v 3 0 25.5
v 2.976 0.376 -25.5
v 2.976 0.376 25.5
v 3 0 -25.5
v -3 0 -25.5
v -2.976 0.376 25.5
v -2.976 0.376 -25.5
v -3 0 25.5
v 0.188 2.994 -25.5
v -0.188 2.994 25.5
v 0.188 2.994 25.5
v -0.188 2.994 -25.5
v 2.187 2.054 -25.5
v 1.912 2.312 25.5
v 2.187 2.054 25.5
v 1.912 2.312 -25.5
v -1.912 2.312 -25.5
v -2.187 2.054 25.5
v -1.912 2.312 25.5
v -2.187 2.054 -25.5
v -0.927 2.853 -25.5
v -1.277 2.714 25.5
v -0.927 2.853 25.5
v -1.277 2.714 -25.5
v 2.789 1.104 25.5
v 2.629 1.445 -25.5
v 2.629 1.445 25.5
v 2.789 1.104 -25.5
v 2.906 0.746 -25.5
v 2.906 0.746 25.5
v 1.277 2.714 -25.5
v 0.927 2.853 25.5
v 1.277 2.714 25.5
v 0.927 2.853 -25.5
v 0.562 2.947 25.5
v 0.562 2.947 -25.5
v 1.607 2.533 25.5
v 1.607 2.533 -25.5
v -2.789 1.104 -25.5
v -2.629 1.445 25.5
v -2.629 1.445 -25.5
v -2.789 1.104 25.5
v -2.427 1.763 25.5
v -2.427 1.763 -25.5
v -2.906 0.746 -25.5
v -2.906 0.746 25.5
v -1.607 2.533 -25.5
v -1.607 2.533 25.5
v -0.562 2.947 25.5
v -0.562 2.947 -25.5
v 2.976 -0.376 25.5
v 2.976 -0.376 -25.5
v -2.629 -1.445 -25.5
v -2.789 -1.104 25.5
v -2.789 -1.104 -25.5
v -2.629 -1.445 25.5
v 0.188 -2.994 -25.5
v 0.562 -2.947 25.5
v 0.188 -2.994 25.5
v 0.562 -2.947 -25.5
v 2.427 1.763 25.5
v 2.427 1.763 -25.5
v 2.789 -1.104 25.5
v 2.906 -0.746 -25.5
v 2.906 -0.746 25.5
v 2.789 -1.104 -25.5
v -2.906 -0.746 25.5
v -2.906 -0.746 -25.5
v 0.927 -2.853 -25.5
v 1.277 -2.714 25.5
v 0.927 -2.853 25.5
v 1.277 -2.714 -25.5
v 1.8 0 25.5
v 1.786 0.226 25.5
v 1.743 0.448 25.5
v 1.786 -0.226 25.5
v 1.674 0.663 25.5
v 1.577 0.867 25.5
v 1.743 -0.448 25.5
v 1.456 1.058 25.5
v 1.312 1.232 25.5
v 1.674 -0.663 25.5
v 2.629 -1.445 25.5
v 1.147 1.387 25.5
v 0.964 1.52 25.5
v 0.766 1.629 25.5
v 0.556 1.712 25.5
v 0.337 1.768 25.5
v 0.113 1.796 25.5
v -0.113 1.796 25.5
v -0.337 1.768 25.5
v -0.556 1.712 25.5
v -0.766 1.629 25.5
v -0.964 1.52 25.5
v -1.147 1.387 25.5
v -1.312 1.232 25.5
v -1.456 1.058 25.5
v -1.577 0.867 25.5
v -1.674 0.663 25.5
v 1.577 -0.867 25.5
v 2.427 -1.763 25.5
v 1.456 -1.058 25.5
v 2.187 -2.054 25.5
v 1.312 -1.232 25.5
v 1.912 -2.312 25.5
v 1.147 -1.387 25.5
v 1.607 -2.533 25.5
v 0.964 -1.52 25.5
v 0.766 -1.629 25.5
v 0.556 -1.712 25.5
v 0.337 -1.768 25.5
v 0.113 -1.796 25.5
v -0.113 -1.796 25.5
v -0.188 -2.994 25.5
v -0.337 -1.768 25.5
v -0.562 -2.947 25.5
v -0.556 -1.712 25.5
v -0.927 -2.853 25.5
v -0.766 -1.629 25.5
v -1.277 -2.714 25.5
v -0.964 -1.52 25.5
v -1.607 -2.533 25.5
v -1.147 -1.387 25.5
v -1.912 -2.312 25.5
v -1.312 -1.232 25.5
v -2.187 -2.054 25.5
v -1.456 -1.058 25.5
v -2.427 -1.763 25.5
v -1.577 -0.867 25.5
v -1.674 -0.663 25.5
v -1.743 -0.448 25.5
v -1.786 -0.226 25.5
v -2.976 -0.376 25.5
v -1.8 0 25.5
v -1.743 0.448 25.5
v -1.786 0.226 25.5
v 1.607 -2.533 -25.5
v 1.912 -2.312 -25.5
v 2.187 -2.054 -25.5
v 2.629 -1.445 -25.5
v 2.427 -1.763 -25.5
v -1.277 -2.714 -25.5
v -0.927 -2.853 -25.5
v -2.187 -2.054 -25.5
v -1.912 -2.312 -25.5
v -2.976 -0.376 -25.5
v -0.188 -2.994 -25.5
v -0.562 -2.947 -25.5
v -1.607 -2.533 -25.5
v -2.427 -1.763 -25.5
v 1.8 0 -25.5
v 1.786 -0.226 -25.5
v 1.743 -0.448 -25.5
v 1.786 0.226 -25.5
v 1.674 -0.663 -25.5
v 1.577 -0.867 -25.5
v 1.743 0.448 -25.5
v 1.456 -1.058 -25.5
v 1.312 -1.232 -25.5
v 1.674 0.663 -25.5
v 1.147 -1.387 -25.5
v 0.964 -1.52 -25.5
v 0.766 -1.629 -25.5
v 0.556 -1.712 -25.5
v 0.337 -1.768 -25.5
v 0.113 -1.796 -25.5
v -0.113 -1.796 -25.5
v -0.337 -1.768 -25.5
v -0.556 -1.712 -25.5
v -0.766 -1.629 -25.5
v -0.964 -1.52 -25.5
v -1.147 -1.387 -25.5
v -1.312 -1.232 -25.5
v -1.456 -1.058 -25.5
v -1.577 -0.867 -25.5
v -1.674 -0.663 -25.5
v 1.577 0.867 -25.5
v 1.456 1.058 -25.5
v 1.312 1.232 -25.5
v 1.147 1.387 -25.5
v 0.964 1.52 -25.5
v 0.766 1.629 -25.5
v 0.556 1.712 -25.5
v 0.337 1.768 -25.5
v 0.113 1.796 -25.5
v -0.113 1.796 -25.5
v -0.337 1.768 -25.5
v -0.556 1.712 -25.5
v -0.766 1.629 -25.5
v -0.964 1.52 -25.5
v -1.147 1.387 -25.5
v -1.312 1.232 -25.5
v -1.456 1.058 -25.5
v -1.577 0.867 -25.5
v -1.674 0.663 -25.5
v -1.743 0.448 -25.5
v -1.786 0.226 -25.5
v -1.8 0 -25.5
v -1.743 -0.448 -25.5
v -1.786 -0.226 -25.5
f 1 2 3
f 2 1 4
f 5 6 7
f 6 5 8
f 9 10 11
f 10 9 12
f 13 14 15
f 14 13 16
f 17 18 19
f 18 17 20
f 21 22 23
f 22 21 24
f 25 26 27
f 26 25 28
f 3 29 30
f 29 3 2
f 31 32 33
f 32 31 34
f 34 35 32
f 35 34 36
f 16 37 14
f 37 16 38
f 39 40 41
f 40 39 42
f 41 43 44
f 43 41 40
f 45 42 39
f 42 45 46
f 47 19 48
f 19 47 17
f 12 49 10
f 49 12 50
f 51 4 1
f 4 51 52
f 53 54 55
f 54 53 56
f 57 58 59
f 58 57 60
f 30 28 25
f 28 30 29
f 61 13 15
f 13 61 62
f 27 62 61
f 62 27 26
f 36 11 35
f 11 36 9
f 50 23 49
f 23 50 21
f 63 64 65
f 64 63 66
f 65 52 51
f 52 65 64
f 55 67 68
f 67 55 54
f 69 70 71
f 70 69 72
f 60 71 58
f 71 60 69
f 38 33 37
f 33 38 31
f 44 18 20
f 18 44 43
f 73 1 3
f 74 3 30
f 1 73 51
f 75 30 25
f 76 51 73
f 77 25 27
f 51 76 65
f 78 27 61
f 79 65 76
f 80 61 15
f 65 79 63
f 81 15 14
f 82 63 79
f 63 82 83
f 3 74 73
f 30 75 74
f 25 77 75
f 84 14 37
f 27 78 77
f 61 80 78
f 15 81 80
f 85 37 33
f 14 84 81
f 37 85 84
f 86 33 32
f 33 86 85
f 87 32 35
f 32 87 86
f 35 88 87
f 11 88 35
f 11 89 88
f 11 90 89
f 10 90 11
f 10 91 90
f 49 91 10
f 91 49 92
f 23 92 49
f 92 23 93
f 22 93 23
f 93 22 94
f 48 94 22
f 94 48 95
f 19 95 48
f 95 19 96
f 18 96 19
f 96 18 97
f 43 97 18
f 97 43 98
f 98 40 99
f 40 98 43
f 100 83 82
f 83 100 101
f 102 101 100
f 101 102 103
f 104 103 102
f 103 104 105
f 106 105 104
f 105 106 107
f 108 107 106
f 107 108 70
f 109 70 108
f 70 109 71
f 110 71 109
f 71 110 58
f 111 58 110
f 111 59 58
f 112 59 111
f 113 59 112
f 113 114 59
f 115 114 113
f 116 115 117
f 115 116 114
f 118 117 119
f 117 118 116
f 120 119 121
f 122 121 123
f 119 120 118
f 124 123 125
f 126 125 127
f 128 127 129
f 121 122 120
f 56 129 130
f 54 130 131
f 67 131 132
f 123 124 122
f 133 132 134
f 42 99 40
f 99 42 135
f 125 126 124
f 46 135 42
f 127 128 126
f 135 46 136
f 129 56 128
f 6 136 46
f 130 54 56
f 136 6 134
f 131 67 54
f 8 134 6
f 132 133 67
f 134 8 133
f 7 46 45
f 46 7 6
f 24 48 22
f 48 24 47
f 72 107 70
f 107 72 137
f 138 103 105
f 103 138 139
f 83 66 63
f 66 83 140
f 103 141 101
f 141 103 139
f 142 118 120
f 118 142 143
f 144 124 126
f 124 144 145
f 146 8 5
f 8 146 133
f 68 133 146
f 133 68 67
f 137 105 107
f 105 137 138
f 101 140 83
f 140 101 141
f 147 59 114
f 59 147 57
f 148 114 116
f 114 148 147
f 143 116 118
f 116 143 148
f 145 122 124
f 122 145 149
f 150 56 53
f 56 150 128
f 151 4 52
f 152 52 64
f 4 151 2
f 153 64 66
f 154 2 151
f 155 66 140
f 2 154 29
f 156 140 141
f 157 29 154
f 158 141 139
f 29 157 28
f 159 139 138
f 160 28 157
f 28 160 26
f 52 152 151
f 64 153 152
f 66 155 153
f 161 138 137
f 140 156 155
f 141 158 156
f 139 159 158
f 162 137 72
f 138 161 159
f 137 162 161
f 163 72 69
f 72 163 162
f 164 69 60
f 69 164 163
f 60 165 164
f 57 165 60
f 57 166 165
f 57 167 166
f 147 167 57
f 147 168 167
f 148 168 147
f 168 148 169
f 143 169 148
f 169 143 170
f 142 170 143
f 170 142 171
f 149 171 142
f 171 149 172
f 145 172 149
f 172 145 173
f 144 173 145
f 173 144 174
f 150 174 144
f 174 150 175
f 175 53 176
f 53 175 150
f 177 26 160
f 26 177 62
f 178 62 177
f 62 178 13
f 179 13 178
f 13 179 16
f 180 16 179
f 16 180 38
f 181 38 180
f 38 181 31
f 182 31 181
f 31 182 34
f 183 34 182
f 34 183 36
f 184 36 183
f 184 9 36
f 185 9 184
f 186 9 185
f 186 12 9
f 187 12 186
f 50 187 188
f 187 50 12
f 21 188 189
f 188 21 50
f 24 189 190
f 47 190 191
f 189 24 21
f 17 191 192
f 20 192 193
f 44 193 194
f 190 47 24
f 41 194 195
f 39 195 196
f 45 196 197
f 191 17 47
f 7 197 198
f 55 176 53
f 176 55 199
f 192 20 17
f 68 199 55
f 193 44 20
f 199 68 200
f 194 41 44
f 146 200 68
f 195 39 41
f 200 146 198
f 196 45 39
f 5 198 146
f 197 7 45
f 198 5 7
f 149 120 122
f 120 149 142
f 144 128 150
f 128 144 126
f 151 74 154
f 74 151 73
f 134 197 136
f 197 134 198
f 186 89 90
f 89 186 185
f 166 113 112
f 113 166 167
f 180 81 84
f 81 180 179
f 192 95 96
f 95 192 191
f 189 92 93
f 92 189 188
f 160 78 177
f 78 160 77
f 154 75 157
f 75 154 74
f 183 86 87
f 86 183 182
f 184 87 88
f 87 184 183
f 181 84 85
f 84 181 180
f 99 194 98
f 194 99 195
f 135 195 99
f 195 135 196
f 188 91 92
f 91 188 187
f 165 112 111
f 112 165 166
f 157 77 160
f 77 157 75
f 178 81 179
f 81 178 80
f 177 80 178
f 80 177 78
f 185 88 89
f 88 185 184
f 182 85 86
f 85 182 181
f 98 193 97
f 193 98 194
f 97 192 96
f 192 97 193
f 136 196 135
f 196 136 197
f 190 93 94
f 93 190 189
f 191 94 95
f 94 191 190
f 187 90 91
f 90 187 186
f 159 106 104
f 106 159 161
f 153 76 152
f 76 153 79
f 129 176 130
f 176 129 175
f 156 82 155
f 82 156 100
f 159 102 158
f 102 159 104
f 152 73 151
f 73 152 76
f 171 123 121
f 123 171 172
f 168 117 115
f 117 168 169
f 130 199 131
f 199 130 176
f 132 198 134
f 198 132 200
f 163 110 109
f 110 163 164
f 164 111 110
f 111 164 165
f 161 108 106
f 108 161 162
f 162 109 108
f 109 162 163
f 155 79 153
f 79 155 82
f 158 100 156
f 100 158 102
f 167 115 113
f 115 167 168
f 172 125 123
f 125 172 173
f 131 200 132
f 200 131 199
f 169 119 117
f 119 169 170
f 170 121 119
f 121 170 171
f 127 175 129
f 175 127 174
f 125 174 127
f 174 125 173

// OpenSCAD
$fn = 50;


difference() {
	union() {
		translate(v = [0, 0, -25.5000000000]) {
			cylinder(h = 51, r = 3.0000000000);
		}
	}
	union() {
		translate(v = [0, 0, -100.0000000000]) {
			cylinder(h = 200, r = 1.8000000000);
		}
	}
}
